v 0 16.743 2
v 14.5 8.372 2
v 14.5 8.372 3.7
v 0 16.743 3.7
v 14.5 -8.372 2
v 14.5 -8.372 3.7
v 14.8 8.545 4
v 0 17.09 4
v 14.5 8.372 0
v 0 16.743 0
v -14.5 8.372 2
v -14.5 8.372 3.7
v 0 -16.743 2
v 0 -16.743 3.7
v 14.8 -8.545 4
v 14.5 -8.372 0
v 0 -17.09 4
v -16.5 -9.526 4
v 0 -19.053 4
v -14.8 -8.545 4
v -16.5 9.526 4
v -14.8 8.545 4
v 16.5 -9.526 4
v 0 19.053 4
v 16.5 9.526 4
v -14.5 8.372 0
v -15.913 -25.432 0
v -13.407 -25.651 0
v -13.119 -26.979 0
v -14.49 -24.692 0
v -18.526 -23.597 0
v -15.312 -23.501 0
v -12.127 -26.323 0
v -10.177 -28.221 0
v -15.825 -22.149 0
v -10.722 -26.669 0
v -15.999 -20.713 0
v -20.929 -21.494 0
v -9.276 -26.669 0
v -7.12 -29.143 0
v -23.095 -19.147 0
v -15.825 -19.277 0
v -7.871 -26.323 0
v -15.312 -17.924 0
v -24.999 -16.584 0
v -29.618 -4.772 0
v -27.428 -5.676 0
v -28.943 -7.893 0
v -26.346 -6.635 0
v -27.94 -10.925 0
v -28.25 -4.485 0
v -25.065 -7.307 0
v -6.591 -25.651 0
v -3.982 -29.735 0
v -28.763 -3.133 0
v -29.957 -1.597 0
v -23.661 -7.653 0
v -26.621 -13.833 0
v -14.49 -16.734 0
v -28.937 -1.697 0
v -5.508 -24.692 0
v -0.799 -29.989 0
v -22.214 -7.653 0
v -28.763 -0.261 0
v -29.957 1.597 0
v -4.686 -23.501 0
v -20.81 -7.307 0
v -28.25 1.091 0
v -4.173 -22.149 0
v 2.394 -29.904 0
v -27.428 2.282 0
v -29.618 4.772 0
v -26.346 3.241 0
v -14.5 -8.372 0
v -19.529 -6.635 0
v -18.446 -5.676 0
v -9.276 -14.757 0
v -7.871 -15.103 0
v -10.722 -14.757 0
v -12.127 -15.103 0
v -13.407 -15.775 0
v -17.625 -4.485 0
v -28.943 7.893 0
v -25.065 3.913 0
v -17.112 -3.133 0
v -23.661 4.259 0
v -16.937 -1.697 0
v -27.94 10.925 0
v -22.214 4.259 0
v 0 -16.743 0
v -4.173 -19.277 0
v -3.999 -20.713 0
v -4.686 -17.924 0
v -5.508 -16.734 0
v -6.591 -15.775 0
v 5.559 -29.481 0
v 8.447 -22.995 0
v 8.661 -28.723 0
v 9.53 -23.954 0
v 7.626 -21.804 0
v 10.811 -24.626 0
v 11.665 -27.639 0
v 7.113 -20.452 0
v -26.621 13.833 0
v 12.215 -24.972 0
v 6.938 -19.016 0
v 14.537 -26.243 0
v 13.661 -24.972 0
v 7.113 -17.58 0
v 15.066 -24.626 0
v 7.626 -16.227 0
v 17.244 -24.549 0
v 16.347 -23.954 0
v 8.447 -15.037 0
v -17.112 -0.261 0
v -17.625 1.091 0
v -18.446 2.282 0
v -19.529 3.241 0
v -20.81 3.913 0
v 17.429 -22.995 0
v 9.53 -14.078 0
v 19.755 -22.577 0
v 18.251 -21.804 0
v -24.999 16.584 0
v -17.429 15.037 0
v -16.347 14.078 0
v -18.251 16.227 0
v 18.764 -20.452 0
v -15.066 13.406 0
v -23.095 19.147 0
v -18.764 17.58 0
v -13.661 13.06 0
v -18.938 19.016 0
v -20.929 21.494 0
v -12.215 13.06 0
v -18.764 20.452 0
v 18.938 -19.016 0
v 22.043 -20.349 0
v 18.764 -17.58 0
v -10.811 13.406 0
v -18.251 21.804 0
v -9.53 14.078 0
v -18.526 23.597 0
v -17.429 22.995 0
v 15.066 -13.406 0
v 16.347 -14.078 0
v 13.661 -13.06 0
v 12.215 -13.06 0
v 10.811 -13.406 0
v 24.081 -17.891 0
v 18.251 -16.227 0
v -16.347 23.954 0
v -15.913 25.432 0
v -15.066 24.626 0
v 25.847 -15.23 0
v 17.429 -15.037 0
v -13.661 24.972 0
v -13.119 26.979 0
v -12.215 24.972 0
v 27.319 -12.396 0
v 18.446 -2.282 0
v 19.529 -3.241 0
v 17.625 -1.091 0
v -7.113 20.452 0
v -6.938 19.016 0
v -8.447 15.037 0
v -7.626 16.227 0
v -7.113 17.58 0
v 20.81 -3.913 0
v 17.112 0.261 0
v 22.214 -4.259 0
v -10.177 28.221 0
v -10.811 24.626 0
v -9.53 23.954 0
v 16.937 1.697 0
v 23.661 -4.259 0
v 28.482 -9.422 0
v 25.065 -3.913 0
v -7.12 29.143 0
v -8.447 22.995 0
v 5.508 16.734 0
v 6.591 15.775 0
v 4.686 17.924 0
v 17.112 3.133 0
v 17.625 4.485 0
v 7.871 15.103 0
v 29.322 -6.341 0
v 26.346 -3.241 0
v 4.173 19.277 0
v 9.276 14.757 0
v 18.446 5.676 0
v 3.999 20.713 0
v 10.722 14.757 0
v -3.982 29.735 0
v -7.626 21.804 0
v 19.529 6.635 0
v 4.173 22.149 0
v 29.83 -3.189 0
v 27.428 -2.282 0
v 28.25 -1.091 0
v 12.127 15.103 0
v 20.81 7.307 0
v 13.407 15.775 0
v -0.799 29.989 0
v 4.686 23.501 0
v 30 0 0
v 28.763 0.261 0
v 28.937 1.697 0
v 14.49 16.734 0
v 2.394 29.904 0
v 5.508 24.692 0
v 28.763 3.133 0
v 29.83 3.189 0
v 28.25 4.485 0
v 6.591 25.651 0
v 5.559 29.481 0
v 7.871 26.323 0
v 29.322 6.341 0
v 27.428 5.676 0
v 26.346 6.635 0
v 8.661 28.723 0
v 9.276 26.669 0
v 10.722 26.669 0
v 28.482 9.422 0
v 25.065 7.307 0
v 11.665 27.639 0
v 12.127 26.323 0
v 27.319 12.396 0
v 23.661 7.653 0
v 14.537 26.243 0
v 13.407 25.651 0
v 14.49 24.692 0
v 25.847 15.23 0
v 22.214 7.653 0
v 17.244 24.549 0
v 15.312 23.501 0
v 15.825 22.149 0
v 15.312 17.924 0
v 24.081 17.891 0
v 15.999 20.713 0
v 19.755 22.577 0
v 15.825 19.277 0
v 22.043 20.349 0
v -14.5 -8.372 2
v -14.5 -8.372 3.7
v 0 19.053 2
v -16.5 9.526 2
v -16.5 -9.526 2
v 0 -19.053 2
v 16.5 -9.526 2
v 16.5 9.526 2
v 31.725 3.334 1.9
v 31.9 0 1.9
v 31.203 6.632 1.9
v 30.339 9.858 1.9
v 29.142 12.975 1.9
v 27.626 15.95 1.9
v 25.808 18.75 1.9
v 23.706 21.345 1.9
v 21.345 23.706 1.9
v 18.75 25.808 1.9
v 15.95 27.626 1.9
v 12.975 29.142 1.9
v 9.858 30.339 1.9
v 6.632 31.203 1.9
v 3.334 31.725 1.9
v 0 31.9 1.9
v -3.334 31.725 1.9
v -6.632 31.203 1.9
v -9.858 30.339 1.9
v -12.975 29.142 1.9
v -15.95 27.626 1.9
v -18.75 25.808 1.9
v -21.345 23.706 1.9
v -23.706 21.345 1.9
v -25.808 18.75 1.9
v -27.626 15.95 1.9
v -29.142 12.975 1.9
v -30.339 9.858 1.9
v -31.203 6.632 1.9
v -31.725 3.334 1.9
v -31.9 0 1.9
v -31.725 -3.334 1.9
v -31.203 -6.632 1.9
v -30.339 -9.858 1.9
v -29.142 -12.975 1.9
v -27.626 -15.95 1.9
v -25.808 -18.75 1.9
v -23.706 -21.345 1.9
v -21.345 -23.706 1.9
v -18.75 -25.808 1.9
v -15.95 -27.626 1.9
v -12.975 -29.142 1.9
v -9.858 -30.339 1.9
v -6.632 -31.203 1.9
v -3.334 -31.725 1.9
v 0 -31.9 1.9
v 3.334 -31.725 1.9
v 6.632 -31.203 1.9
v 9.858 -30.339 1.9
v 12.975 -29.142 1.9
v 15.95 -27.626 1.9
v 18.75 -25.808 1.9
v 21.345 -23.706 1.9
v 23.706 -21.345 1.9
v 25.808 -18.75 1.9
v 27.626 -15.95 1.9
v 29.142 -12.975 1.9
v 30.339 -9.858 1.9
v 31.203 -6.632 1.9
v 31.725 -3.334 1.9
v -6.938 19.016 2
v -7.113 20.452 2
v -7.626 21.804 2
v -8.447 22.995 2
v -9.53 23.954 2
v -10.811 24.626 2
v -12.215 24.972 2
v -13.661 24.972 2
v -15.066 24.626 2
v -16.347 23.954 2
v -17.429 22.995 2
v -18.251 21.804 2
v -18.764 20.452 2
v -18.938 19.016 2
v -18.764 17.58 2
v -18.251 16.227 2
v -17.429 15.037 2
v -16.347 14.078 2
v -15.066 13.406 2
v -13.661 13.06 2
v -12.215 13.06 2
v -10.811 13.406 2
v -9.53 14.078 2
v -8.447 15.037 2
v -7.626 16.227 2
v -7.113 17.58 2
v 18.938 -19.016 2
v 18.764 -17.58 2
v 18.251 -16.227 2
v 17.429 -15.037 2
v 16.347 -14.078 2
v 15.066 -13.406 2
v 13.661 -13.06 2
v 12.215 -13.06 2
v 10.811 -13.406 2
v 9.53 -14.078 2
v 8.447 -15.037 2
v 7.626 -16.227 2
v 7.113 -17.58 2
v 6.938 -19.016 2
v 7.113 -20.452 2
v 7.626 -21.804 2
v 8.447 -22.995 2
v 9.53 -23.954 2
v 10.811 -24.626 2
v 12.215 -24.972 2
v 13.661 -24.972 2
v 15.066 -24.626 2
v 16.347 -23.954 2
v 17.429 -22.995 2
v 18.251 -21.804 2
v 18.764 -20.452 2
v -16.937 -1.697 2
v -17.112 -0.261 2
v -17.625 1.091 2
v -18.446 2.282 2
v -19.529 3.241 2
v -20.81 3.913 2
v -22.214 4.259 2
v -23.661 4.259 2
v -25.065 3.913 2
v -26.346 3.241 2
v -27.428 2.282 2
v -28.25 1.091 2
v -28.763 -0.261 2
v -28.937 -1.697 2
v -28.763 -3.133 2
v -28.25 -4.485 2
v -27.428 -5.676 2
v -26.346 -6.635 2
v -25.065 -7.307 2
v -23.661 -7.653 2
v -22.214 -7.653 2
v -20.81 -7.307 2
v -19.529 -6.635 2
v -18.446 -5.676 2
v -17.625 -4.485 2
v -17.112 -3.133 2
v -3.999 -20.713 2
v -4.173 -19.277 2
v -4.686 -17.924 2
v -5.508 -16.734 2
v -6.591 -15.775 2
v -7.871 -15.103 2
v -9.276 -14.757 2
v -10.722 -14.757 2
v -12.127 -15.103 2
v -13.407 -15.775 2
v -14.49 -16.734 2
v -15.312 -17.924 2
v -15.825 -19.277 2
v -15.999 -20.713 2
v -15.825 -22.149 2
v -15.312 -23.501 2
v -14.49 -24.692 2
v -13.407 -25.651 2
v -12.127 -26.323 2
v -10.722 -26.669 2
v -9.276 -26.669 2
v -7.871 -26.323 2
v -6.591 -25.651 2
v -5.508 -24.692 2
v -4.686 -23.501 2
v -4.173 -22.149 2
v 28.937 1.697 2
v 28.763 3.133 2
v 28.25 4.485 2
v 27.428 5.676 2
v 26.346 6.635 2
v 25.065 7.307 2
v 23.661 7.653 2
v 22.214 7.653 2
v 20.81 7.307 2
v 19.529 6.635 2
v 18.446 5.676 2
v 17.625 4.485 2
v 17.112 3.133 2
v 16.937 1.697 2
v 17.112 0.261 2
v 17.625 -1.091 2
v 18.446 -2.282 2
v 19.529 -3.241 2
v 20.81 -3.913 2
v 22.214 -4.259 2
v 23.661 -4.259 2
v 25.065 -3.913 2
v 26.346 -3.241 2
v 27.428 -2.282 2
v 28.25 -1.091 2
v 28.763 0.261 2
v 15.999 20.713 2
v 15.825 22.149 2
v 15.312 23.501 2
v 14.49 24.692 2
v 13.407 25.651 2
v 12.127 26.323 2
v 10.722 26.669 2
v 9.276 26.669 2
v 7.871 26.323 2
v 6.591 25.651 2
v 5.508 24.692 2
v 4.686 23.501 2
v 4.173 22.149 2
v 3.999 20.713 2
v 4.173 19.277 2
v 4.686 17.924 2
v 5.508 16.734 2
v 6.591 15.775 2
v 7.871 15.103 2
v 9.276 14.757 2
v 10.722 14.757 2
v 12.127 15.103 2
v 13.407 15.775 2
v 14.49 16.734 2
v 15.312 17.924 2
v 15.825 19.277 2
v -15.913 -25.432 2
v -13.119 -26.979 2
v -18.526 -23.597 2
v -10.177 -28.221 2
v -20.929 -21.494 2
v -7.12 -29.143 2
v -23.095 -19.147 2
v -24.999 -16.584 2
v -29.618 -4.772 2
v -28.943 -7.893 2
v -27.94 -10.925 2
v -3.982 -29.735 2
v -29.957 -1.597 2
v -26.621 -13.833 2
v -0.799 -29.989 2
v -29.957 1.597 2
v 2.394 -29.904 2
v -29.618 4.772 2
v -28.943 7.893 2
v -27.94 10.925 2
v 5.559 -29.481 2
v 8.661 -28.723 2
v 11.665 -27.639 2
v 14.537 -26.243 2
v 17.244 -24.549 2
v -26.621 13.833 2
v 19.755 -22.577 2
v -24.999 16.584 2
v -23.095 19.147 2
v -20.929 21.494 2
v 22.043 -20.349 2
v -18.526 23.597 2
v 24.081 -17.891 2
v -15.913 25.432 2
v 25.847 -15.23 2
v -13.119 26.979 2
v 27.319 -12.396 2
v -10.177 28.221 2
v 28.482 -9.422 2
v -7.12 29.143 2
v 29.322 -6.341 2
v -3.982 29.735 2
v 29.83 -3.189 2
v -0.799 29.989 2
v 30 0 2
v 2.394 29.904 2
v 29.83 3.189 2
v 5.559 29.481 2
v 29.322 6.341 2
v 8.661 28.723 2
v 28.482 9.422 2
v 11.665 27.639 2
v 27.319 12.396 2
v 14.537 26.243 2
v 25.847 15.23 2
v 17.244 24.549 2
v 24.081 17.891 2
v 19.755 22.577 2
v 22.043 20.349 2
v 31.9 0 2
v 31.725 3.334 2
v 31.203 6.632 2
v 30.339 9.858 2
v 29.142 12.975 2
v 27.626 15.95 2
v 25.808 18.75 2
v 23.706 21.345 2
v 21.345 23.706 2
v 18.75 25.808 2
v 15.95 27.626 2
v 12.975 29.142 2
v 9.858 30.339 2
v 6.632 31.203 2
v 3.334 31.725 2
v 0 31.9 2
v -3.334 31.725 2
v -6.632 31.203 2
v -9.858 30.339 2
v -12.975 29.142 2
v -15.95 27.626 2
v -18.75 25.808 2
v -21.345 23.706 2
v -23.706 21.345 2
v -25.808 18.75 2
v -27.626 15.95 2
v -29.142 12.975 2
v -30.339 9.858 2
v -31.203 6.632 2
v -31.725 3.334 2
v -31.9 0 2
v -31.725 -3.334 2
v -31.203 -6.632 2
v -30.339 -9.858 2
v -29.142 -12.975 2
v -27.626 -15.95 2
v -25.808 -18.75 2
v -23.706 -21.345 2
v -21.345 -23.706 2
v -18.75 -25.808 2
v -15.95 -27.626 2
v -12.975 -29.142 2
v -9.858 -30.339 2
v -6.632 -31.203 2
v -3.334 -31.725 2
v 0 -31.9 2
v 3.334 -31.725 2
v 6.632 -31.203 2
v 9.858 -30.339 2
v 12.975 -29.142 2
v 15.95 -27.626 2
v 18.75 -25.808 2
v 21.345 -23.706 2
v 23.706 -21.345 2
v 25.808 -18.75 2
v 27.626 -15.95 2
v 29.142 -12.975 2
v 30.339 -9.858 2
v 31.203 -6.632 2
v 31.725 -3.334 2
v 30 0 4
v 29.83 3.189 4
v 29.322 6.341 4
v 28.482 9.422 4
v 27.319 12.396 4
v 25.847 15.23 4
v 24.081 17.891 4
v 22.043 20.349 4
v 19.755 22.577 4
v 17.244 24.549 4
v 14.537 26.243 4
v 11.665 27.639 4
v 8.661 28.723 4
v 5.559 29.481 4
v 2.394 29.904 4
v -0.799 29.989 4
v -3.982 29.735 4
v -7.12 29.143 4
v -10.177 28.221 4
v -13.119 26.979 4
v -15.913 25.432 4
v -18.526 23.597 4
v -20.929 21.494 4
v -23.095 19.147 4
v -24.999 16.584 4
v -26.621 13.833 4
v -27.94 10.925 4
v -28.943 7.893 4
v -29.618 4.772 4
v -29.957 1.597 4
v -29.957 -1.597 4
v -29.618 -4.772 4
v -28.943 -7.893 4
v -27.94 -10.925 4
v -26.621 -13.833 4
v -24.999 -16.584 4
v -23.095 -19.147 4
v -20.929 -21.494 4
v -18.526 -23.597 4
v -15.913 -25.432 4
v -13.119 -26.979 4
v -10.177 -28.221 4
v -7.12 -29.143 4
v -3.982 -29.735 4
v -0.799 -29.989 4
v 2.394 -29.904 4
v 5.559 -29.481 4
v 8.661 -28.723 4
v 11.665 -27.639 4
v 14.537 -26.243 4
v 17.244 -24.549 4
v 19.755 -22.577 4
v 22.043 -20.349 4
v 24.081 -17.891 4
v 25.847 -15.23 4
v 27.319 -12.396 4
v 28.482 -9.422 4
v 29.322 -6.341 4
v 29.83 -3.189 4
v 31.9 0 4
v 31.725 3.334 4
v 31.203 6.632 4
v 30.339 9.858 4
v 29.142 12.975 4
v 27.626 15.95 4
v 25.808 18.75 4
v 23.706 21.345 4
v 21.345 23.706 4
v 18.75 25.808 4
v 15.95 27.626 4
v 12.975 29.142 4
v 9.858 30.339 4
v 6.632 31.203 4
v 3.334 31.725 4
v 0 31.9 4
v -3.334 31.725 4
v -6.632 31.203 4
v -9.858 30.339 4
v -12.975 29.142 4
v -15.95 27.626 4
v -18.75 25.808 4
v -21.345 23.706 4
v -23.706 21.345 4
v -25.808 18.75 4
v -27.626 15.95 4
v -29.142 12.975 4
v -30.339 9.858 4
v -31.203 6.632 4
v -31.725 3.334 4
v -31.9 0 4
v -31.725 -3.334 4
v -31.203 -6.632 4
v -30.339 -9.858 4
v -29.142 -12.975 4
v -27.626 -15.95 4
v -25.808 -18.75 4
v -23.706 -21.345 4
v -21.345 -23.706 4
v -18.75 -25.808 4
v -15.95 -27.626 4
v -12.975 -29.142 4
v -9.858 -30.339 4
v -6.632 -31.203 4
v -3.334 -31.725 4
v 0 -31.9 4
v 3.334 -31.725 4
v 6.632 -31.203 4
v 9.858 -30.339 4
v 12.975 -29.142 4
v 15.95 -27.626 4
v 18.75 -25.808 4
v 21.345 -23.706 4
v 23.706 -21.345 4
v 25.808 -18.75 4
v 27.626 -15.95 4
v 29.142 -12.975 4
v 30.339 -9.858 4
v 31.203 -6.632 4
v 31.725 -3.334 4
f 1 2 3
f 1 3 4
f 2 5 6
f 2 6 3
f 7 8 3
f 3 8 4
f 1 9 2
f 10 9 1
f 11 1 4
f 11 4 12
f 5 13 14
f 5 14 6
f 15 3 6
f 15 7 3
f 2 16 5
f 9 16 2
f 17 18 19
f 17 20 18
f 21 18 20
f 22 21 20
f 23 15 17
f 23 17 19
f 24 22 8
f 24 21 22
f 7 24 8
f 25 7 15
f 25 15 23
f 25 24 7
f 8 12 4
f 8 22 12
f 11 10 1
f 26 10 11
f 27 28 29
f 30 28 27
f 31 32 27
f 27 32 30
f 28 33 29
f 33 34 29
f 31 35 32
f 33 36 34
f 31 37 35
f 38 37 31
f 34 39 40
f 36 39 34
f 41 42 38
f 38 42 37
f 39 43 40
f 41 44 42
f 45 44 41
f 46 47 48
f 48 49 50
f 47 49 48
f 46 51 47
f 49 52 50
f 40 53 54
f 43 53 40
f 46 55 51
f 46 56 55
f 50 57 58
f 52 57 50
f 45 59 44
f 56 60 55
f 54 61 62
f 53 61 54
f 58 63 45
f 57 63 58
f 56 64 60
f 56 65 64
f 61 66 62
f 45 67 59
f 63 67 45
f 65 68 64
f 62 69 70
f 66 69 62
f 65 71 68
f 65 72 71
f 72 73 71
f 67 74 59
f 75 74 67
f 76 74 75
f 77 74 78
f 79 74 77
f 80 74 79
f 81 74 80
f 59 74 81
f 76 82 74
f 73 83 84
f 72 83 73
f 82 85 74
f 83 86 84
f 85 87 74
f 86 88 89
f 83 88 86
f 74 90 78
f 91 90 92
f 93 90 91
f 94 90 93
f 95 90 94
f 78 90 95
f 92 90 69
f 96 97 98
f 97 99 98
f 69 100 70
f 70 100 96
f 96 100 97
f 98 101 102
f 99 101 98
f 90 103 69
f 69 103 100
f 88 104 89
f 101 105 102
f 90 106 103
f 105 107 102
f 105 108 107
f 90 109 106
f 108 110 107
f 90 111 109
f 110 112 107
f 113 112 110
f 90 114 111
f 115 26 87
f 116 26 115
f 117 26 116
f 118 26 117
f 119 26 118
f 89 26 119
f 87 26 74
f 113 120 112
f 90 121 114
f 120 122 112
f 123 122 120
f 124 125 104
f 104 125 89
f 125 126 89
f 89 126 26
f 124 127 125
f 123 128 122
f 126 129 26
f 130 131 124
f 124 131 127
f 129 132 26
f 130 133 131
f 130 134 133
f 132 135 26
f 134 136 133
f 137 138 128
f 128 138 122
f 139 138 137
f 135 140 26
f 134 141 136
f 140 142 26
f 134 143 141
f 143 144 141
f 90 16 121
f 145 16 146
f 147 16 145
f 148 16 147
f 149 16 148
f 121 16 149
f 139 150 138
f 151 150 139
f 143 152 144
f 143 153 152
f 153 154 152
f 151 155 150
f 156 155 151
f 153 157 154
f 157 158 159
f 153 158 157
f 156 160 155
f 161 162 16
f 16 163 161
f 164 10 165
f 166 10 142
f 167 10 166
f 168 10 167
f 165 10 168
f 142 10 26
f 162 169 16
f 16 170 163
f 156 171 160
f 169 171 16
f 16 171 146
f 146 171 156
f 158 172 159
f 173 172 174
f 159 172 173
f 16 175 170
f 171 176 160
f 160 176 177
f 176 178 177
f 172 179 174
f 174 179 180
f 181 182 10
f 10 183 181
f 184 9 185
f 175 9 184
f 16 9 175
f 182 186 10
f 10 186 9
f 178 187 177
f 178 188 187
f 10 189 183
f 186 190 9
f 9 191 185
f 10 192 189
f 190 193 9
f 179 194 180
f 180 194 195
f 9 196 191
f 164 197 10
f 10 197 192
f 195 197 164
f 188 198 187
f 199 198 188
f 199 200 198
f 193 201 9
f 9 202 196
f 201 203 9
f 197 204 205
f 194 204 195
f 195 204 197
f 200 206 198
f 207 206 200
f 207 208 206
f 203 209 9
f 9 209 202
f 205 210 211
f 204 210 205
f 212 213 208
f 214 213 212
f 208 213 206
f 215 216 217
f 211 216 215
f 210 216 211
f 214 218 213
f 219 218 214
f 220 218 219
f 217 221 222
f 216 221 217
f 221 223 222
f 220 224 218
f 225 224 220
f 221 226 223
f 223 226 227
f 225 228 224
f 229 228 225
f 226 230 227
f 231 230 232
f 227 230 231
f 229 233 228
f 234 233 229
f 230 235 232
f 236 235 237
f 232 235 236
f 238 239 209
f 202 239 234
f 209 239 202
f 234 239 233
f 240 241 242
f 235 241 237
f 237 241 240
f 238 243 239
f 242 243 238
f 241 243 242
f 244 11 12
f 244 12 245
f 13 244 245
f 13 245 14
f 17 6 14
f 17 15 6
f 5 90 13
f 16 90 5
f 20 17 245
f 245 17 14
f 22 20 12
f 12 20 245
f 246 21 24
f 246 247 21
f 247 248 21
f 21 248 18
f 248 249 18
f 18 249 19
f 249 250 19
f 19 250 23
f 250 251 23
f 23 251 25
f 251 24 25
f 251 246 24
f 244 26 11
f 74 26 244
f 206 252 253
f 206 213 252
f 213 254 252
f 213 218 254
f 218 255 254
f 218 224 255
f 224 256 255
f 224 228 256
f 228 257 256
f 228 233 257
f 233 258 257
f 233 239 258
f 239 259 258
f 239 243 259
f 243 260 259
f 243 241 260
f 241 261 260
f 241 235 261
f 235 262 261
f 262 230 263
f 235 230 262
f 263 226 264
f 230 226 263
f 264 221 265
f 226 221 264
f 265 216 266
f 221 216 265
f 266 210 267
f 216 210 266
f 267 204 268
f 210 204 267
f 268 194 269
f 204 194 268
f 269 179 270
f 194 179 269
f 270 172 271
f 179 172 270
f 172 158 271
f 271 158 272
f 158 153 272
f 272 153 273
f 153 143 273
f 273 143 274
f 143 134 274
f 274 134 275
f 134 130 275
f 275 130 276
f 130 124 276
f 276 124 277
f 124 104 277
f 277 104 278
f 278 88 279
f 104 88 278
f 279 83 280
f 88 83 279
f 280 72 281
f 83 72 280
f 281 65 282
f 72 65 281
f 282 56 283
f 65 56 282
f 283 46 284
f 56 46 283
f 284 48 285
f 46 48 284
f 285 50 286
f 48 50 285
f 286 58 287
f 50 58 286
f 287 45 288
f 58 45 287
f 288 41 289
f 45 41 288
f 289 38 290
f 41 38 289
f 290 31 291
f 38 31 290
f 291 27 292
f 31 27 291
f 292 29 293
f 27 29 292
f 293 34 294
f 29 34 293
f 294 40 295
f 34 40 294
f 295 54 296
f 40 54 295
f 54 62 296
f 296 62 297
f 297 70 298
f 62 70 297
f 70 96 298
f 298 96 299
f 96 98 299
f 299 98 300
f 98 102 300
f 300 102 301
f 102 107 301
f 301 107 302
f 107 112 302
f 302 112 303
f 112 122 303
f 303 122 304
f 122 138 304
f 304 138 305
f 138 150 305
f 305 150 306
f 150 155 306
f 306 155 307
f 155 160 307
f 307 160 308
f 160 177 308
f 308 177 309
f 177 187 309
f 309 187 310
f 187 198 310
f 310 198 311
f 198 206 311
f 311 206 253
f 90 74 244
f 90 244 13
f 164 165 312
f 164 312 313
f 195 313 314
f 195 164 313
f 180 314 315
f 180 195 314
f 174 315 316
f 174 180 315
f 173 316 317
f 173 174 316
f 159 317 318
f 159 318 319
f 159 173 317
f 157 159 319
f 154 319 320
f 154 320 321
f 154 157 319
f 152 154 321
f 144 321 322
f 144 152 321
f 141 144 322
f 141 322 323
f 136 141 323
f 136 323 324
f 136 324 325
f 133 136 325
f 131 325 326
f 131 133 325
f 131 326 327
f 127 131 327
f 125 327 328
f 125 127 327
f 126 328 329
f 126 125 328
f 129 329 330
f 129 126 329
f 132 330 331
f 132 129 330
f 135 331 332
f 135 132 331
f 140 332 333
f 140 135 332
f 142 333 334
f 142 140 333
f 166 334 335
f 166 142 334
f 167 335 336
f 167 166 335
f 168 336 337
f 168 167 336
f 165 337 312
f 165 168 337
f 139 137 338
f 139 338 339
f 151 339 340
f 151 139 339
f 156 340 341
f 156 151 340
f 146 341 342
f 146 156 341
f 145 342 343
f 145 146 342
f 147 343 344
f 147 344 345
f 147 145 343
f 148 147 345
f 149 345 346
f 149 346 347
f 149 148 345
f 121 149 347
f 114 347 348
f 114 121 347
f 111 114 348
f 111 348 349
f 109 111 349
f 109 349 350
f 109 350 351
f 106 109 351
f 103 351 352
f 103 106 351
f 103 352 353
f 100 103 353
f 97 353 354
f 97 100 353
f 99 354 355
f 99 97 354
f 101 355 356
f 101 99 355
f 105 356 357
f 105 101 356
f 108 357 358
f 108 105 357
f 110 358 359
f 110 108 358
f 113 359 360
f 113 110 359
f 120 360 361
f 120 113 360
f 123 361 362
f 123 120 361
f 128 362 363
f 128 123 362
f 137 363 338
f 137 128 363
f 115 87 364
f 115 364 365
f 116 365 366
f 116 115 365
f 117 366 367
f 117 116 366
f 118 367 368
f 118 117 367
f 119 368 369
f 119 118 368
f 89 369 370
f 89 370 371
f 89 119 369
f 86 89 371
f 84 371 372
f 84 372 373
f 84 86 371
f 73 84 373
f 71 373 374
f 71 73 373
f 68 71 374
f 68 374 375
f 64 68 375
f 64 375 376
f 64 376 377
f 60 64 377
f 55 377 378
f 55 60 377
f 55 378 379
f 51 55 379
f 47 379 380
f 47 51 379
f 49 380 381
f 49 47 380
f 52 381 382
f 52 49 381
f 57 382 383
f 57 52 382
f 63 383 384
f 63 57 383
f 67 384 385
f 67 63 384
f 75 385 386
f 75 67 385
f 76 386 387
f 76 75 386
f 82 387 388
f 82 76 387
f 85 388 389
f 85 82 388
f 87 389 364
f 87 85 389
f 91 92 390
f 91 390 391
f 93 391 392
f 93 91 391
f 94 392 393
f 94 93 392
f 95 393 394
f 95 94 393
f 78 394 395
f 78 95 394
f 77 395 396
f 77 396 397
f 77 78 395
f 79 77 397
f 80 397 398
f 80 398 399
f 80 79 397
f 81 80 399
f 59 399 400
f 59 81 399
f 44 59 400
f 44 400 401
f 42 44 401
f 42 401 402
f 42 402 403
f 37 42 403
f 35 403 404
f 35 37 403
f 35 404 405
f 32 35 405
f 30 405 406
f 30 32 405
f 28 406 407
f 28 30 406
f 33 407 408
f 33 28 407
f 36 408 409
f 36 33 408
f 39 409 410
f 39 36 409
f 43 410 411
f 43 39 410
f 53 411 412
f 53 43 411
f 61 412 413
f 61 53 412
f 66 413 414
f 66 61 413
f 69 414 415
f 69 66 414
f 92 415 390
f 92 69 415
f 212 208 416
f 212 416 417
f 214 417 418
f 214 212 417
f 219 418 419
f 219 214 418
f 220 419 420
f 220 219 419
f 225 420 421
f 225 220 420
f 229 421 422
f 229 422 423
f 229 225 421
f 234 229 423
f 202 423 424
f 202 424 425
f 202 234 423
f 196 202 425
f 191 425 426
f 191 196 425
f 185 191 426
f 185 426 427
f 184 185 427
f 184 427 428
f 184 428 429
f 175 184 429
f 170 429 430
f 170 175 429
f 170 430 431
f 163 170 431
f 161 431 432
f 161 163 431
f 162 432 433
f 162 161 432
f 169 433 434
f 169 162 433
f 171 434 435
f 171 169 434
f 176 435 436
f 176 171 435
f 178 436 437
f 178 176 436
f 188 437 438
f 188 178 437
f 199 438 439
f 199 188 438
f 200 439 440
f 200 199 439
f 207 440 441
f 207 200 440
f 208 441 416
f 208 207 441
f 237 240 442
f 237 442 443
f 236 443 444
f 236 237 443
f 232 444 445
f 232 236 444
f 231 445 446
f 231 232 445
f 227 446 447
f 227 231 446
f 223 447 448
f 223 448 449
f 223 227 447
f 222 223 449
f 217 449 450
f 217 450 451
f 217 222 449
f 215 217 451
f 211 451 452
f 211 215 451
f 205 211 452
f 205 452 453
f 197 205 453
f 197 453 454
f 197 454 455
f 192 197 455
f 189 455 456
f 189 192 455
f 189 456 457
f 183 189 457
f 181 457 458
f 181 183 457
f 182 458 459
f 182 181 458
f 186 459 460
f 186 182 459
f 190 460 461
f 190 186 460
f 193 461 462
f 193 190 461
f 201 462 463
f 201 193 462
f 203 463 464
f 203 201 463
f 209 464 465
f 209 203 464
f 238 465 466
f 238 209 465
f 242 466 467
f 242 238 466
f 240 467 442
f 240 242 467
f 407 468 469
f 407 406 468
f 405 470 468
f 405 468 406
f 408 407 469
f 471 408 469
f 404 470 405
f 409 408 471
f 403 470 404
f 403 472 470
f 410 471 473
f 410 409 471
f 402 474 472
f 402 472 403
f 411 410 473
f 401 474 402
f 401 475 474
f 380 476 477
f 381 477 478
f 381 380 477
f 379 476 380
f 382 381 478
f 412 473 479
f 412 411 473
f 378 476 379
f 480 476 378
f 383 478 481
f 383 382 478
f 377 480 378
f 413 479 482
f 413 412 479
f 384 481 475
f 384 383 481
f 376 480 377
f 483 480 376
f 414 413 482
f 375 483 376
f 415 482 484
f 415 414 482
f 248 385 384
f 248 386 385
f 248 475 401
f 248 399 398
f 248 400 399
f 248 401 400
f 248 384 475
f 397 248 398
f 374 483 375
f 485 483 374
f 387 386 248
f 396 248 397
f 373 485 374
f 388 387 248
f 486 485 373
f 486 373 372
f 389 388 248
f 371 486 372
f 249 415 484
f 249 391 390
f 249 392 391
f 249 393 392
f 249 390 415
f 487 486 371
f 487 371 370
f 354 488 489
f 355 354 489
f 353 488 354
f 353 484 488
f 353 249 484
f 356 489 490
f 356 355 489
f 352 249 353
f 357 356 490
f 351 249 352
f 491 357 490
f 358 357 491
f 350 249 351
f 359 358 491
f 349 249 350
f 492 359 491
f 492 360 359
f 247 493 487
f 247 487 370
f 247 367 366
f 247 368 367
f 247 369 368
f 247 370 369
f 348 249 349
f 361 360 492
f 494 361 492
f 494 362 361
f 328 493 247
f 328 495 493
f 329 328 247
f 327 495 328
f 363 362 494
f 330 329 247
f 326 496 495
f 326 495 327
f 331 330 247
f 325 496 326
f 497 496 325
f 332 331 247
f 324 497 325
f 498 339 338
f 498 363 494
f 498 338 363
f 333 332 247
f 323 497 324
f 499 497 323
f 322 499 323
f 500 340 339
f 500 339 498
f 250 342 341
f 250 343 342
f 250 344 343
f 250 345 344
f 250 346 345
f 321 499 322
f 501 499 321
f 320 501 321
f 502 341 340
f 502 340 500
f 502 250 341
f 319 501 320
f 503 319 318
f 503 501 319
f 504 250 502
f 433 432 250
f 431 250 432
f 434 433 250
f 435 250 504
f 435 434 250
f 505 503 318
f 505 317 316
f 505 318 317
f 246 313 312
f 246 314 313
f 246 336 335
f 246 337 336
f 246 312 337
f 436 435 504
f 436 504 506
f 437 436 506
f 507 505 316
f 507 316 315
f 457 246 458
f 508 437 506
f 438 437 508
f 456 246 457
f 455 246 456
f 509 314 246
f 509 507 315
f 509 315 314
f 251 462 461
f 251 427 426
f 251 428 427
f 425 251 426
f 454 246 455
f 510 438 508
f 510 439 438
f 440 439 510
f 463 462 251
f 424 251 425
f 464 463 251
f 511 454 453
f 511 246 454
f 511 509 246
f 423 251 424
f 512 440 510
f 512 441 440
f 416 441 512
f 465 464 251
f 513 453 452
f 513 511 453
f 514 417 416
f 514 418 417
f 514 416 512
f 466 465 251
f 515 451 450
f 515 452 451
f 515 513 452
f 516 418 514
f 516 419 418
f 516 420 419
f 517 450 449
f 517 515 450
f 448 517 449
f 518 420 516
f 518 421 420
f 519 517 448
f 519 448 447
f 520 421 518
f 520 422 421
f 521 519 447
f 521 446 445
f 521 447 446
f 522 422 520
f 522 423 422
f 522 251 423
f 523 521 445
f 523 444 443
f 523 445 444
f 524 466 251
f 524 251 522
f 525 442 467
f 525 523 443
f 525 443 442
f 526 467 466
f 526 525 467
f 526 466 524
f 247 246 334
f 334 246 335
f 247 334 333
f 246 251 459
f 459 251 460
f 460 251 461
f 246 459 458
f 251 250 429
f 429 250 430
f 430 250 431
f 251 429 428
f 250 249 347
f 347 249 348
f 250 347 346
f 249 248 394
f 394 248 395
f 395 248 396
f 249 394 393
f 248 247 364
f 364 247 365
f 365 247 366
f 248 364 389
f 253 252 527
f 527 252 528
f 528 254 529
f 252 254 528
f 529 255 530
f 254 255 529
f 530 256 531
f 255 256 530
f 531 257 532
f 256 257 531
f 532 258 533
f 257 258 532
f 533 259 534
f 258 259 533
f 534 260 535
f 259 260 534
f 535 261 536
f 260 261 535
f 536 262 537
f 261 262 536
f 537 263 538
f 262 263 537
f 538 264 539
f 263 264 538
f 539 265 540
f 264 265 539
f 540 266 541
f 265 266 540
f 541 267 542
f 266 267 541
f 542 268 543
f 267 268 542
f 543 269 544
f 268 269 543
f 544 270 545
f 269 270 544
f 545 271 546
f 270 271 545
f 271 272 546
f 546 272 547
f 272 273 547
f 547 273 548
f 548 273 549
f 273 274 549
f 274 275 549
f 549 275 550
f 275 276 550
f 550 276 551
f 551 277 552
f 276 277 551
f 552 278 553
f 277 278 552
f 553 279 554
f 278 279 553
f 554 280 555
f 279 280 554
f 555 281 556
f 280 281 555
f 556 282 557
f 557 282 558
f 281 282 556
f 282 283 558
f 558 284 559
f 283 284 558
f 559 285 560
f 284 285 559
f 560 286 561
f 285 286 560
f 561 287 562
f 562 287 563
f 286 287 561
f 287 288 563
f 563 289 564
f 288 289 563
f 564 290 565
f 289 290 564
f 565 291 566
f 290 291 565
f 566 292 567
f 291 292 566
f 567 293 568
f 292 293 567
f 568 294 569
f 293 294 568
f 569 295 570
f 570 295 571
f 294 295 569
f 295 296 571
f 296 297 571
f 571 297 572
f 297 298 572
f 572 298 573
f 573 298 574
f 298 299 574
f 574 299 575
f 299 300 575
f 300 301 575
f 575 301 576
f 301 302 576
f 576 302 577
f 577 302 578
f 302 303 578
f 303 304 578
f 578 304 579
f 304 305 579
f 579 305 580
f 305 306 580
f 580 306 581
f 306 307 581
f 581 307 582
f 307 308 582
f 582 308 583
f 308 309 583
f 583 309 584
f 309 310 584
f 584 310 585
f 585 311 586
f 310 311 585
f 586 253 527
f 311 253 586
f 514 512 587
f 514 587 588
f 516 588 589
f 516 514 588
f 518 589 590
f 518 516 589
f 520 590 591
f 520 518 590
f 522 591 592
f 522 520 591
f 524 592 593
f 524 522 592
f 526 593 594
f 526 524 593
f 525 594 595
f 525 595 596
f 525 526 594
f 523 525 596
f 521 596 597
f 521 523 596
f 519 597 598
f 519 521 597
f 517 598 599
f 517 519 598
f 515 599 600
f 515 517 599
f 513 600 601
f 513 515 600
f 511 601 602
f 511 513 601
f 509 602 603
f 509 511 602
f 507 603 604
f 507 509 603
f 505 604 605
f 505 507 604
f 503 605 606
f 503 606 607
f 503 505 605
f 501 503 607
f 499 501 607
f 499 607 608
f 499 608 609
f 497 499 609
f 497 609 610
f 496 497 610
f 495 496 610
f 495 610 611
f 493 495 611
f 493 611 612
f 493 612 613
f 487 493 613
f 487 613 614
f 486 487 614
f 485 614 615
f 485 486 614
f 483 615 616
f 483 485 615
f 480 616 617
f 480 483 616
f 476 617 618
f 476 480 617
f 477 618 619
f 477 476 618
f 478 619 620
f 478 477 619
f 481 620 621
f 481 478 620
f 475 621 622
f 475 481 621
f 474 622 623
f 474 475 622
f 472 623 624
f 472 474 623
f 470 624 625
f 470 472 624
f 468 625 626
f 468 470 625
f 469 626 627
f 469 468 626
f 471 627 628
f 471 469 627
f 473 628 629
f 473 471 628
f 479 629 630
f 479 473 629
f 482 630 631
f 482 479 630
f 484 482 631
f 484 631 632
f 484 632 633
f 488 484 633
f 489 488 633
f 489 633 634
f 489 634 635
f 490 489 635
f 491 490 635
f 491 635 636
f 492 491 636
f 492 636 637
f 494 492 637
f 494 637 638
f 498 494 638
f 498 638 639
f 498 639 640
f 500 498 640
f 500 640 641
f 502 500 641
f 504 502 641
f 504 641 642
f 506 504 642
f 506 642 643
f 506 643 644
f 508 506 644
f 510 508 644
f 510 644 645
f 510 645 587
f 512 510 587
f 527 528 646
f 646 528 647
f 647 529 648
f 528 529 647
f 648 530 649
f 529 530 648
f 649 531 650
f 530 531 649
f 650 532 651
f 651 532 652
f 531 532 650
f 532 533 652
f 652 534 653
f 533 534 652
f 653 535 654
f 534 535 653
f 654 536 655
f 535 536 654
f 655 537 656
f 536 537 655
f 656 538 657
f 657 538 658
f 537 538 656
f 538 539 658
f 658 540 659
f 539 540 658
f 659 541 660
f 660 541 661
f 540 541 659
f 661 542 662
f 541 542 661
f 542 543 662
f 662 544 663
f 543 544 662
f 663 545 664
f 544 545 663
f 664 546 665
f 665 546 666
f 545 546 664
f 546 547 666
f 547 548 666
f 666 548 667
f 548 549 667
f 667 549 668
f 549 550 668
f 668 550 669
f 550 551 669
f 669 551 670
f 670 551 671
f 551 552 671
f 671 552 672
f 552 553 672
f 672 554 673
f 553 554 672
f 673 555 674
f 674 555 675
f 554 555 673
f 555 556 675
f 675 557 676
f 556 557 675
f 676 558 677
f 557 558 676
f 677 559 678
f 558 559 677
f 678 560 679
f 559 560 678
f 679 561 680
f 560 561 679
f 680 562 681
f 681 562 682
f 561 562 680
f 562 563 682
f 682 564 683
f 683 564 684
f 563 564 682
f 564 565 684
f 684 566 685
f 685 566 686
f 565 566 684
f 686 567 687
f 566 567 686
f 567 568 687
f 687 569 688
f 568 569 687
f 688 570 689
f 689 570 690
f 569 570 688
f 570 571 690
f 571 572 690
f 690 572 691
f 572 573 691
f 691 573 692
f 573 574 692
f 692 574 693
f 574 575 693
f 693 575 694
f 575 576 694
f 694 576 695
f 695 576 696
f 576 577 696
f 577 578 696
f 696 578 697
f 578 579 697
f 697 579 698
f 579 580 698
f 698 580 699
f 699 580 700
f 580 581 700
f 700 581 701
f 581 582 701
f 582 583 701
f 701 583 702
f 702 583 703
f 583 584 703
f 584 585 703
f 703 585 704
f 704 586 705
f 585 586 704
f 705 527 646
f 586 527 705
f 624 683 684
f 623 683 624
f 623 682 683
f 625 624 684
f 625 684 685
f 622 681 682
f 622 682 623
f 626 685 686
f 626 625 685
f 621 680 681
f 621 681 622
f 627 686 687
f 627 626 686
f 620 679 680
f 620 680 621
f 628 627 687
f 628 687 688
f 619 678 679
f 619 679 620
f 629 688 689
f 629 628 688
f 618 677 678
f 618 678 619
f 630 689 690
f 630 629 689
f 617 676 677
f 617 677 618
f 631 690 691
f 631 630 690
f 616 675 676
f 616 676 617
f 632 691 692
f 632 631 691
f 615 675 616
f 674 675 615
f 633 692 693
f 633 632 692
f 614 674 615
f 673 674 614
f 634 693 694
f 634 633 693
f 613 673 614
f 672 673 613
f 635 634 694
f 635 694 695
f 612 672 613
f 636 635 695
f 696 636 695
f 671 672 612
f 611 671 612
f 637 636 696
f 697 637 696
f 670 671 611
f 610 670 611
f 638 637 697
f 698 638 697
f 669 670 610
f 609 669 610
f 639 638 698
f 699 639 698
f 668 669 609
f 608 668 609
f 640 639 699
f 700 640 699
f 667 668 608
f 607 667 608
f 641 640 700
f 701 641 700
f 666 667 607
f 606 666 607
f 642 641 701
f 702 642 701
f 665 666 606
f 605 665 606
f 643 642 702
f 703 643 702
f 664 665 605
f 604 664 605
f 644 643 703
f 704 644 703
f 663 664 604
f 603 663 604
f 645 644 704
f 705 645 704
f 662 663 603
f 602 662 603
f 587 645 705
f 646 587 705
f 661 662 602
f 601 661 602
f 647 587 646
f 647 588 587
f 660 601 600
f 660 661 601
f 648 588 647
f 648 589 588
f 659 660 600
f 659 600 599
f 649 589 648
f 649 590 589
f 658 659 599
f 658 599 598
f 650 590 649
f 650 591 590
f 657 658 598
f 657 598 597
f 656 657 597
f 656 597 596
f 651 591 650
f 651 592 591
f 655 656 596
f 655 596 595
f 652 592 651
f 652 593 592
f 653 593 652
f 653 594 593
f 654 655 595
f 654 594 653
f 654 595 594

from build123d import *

# Parameters (mm, degrees)
SKETCH_R        = 31.9
SKETCH_R_2      = 6
PAD_DEPTH       = 2
SKETCH001_R     = 31.9
SKETCH001_R_2   = 30
PAD001_DEPTH    = 2
PAD002_DEPTH    = 2
CHAMFER_SIZE    = 1.9
CHAMFER001_SIZE = 0.3


with BuildPart() as part:
    # Sketch → Pad (new body)
    with BuildSketch(Plane.XY):
        Circle(SKETCH_R)
        with Locations((9.999037, 20.71278)):
            Circle(SKETCH_R_2, mode=Mode.SUBTRACT)
        with Locations((22.937312, 1.69697)):
            Circle(SKETCH_R_2, mode=Mode.SUBTRACT)
        with Locations((12.938275, -19.01581)):
            Circle(SKETCH_R_2, mode=Mode.SUBTRACT)
        with Locations((-9.999037, -20.71278)):
            Circle(SKETCH_R_2, mode=Mode.SUBTRACT)
        with Locations((-22.937312, -1.69697)):
            Circle(SKETCH_R_2, mode=Mode.SUBTRACT)
        with Locations((-12.938275, 19.01581)):
            Circle(SKETCH_R_2, mode=Mode.SUBTRACT)
        Polygon((0, 16.743158), (-14.5, 8.371579), (-14.5, -8.371579), (0, -16.743158), (14.5, -8.371579), (14.5, 8.371579), align=None, mode=Mode.SUBTRACT)
    extrude(amount=PAD_DEPTH)

    # Sketch001 (on Face15 of Pad) → Pad001 (join)
    with BuildSketch(Plane.XY.offset(2)):
        Circle(SKETCH001_R)
        Circle(SKETCH001_R_2, mode=Mode.SUBTRACT)
    extrude(amount=PAD001_DEPTH)

    # Sketch002 (on Face17 of Pad001) → Pad002 (join)
    with BuildSketch(Plane.XY.offset(2)):
        Polygon((0, 19.052559), (-16.5, 9.526279), (-16.5, -9.526279), (0, -19.052559), (16.5, -9.526279), (16.5, 9.526279), align=None)
        Polygon((0, 16.743158), (-14.5, 8.371579), (-14.5, -8.371579), (0, -16.743158), (14.5, -8.371579), (14.5, 8.371579), align=None, mode=Mode.SUBTRACT)
    extrude(amount=PAD002_DEPTH)

    # Chamfer
    chamfer_edges = [part.edges().sort_by_distance(p)[0] for p in [
        (-31.9, 0, 0),
    ]]
    chamfer(chamfer_edges, length=CHAMFER_SIZE)

    # Chamfer001
    chamfer001_edges = [part.edges().sort_by_distance(p)[0] for p in [
        (-7.25, -12.557368, 4),
        (-14.5, 0, 4),
        (-7.25, 12.557368, 4),
        (7.25, 12.557368, 4),
        (14.5, 0, 4),
        (7.25, -12.557368, 4),
    ]]
    chamfer(chamfer001_edges, length=CHAMFER001_SIZE)


solid = part.part
